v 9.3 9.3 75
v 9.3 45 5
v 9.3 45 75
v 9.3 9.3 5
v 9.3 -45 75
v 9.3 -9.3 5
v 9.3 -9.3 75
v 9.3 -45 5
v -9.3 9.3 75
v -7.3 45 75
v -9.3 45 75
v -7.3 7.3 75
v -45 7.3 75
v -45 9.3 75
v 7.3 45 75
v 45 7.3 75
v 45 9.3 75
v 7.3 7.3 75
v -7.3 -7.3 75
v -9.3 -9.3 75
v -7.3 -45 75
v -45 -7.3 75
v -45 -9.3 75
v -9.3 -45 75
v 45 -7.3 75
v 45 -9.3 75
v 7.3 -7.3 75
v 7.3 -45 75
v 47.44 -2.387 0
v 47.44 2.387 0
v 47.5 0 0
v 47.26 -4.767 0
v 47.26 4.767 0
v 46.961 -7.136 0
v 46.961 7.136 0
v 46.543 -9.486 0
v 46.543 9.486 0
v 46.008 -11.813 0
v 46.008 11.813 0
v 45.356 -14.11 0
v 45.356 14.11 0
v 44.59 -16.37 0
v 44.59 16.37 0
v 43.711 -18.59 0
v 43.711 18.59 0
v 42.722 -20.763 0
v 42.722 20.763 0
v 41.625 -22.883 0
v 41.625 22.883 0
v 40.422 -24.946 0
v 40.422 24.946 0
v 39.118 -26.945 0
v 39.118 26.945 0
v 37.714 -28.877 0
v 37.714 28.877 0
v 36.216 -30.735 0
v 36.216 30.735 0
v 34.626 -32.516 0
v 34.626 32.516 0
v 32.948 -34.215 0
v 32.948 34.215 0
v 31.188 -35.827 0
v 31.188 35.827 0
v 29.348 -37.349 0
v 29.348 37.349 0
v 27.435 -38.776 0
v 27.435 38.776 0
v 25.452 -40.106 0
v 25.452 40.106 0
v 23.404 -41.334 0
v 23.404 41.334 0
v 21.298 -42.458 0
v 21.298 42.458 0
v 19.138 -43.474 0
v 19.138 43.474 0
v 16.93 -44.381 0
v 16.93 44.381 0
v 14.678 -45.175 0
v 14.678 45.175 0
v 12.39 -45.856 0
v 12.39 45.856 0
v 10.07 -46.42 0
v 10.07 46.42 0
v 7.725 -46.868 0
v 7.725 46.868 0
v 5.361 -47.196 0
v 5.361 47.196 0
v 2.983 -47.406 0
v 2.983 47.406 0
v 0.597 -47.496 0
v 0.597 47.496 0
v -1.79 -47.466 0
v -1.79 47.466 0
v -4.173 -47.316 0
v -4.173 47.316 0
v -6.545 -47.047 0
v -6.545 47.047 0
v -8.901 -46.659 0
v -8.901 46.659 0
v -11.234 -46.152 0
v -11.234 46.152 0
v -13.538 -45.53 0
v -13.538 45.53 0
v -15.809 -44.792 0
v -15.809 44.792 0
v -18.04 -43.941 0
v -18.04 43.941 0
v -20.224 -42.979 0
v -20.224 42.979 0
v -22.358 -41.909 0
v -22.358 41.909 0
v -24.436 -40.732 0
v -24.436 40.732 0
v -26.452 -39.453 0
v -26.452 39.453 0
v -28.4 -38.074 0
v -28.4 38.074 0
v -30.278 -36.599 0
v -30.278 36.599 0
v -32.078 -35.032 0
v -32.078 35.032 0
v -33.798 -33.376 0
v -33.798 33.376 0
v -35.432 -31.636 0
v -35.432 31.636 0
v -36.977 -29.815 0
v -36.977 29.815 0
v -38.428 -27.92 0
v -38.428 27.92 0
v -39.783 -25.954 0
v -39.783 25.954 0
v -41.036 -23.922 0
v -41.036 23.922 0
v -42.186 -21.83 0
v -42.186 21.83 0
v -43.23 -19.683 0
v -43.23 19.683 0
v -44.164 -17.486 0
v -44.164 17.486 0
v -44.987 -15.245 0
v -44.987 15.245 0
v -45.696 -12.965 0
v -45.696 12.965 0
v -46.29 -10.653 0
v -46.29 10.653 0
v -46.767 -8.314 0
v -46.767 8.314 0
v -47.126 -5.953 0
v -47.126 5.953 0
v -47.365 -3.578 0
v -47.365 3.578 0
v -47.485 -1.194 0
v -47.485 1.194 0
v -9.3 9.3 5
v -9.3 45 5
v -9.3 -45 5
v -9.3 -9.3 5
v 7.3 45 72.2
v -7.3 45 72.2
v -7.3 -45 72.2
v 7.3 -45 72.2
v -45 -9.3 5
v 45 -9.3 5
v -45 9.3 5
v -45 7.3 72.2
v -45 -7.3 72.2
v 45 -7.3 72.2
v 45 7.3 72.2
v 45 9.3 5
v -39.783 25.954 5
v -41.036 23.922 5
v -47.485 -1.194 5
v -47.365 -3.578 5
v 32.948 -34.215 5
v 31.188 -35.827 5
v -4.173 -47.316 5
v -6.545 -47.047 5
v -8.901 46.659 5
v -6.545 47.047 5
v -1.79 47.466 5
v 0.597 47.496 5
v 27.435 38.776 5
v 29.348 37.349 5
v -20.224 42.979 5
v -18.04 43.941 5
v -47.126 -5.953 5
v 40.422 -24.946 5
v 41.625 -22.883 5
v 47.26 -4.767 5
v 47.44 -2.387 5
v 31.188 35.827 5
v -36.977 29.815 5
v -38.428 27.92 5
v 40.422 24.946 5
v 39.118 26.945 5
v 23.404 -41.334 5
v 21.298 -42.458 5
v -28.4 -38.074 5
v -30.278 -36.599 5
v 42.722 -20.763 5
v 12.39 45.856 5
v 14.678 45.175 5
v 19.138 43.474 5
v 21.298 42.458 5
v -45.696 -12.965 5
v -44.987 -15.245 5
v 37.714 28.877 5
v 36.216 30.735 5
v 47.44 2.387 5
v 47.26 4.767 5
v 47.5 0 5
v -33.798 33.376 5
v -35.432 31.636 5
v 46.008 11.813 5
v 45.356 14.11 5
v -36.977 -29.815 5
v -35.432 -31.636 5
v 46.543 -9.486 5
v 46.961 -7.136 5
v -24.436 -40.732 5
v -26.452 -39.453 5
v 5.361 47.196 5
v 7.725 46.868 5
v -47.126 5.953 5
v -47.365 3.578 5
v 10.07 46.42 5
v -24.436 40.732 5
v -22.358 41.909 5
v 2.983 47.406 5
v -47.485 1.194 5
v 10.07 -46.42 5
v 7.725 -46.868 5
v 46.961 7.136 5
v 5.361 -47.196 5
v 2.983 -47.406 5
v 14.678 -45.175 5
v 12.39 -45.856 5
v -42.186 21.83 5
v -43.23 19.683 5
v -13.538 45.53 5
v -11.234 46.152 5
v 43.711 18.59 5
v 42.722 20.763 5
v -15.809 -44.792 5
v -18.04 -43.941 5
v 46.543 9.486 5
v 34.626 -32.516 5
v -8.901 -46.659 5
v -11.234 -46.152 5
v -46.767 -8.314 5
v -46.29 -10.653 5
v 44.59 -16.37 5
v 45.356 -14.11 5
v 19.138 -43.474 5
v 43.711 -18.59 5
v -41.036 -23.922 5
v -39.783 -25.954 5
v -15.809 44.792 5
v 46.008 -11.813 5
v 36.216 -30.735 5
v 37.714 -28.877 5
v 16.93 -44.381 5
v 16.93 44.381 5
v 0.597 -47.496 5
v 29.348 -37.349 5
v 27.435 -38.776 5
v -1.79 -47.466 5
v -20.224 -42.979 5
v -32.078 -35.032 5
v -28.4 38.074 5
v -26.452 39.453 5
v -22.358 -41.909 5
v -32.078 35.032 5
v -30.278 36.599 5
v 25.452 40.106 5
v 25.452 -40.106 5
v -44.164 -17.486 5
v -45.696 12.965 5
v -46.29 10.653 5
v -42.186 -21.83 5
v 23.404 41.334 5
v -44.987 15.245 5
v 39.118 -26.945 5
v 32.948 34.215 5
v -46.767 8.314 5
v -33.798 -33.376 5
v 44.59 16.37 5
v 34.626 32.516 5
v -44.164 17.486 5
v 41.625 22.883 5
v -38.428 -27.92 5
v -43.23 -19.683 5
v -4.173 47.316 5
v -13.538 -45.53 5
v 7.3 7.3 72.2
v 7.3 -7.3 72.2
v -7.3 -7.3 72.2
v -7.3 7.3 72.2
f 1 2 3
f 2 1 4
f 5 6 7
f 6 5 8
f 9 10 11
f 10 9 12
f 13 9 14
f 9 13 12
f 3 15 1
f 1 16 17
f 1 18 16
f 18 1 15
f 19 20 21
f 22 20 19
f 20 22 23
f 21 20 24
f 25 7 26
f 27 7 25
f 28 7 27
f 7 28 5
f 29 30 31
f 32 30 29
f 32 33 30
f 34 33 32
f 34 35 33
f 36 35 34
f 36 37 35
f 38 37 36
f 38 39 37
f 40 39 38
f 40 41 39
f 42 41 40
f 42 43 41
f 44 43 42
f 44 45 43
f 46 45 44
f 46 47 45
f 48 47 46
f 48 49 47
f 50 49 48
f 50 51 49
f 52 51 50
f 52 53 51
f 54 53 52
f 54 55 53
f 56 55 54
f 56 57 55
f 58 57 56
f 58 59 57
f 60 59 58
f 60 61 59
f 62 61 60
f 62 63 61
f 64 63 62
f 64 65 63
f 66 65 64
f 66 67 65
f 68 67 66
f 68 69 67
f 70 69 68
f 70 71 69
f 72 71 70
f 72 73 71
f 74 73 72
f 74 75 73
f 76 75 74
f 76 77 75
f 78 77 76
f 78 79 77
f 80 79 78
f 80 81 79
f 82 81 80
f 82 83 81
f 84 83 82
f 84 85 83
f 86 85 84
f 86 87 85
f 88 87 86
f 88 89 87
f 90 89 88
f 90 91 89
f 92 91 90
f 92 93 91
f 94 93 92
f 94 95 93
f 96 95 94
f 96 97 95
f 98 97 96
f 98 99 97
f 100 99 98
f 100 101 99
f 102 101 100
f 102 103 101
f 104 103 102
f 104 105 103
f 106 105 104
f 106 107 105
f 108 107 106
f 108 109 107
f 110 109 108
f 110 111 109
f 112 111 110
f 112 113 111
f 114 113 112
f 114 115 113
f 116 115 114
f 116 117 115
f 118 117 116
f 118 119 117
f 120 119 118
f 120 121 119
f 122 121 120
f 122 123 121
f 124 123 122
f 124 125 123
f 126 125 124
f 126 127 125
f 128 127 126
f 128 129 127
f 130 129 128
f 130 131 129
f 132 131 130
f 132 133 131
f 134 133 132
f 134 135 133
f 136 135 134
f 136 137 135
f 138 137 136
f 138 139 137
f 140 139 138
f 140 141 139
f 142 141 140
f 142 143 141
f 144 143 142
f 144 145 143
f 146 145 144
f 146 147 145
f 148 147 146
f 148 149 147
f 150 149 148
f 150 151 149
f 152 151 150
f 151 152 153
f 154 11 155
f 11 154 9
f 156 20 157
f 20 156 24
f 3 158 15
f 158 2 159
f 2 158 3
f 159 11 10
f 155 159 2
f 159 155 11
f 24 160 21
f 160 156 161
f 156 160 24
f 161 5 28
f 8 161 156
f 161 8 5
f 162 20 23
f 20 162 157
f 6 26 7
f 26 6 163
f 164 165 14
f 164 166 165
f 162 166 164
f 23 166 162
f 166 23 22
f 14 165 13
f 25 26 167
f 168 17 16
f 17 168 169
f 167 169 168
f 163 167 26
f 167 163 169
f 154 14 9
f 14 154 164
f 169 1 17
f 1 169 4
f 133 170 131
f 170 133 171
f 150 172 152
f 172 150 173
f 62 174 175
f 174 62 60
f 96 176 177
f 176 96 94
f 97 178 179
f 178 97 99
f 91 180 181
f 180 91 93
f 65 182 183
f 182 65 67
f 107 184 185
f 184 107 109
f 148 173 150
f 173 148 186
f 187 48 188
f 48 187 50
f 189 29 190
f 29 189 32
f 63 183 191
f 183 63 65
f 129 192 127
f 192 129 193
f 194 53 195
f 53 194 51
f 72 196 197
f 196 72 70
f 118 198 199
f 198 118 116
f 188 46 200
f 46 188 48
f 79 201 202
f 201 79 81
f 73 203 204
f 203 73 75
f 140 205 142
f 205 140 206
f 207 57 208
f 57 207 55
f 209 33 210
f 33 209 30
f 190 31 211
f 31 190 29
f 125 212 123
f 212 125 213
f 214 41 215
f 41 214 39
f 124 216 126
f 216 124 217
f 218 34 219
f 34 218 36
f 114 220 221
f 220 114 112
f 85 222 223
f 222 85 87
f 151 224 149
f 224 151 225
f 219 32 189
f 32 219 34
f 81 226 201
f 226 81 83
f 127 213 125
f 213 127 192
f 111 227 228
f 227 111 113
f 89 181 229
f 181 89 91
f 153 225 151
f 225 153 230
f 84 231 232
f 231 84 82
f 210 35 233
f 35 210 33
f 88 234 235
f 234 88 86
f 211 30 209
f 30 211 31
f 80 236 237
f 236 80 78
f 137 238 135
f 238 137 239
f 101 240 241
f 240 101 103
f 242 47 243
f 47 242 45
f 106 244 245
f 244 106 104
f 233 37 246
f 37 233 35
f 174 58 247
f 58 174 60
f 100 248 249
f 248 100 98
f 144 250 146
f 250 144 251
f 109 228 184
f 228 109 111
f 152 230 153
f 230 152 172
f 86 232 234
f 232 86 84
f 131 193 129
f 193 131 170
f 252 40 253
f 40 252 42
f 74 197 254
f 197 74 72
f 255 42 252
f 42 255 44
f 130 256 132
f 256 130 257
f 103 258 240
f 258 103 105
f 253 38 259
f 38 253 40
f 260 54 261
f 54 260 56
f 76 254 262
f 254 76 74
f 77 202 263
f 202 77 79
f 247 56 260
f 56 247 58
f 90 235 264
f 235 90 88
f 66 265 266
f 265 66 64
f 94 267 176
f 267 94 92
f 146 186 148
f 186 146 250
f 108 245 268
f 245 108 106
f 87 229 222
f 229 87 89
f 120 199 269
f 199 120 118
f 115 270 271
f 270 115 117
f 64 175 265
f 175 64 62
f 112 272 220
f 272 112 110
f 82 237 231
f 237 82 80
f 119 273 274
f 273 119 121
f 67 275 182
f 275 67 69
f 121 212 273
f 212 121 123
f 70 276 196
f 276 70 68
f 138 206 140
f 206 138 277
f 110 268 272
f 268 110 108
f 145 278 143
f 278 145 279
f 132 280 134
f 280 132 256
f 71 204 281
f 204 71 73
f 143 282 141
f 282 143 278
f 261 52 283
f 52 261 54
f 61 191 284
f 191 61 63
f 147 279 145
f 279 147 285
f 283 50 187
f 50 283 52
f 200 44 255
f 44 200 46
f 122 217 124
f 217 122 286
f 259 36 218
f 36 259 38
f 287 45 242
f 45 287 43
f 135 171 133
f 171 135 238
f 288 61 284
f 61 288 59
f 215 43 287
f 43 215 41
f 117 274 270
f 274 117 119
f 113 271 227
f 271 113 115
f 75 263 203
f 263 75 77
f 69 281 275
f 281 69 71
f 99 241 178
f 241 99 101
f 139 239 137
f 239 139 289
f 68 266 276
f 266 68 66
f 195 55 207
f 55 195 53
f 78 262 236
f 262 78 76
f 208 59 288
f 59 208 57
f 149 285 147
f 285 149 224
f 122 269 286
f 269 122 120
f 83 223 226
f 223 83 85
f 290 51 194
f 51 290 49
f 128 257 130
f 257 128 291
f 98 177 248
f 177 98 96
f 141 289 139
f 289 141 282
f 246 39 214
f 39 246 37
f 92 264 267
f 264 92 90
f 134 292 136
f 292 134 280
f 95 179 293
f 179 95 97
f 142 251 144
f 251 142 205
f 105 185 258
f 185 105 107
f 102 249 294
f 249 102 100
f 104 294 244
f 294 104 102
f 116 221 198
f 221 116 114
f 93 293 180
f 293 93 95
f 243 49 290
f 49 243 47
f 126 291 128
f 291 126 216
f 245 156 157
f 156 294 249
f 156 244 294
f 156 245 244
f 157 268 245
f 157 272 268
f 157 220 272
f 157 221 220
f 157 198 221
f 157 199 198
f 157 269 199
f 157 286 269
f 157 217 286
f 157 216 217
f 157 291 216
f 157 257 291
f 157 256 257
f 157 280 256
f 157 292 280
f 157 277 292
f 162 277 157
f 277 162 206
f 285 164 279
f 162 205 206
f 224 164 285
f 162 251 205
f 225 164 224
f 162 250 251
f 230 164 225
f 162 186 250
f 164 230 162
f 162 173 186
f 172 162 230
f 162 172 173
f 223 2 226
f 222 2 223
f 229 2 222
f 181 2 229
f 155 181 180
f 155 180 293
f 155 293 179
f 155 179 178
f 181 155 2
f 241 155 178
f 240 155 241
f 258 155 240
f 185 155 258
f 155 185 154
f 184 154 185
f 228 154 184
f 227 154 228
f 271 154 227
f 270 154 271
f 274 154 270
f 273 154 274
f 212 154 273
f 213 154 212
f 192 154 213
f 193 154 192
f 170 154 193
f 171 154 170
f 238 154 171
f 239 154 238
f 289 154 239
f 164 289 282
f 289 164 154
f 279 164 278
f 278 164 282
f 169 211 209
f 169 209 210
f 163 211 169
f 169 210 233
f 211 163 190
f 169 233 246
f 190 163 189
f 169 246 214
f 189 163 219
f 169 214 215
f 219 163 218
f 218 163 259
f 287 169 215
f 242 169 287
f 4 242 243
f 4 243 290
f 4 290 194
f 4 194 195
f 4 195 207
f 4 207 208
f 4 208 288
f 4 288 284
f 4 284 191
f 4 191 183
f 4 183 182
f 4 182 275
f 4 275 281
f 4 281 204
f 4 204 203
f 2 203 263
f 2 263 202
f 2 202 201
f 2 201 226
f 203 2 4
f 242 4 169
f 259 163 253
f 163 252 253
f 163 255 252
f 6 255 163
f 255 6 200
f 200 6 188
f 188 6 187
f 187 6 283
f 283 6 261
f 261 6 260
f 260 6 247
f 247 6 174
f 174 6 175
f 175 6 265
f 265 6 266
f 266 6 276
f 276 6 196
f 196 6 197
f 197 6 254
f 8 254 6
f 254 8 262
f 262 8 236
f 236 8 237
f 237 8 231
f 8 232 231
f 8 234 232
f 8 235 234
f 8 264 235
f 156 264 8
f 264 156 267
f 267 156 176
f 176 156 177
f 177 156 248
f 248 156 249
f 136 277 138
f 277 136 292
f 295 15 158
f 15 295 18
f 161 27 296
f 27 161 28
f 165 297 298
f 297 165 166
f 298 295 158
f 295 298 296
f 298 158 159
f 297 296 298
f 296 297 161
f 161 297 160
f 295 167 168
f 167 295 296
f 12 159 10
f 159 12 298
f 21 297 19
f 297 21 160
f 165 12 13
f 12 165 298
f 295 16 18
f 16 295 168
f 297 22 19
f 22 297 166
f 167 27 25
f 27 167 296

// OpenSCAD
res=12;
res=125;

leg_width=14.6;

module to_subtract() {
    len=100;
    translate([
        -leg_width/2,
        -len/2
    ]) 
    union() {
        cube([
            leg_width,
            len,
            3,
        ], $f=res);
        rotate([0, 0, 90])
        translate([
            ((len/2)-(leg_width/2)),
            -((len/2)+(leg_width/2)),
            0,
        ]) 
        cube([
            leg_width,
            len,
            3,
        ]);
    }
}

height=75;
module base() {
    len=90;
    leg_width=leg_width+4;
    translate([
        -leg_width/2,
        -len/2
    ]) 
    union() {
        cube([
            leg_width,
            len,
            height,
        ], $f=res);
        rotate([0, 0, 90])
        translate([
            ((len/2)-(leg_width/2)),
            -((len/2)+(leg_width/2)),
            0,
        ]) 
        cube([
            leg_width,
            len,
            height,
        ], $f=res);
        
    }
}

difference() {
    color([0,1,0, 0.5])
    union() {
        base();
        linear_extrude(height = 5, $fn=res) 
        circle(d = 95);
    }
    color([0,0,1, 0.5])
    translate([
        0,
        0,
        height-2.8,
    ]) 
    to_subtract();
}
